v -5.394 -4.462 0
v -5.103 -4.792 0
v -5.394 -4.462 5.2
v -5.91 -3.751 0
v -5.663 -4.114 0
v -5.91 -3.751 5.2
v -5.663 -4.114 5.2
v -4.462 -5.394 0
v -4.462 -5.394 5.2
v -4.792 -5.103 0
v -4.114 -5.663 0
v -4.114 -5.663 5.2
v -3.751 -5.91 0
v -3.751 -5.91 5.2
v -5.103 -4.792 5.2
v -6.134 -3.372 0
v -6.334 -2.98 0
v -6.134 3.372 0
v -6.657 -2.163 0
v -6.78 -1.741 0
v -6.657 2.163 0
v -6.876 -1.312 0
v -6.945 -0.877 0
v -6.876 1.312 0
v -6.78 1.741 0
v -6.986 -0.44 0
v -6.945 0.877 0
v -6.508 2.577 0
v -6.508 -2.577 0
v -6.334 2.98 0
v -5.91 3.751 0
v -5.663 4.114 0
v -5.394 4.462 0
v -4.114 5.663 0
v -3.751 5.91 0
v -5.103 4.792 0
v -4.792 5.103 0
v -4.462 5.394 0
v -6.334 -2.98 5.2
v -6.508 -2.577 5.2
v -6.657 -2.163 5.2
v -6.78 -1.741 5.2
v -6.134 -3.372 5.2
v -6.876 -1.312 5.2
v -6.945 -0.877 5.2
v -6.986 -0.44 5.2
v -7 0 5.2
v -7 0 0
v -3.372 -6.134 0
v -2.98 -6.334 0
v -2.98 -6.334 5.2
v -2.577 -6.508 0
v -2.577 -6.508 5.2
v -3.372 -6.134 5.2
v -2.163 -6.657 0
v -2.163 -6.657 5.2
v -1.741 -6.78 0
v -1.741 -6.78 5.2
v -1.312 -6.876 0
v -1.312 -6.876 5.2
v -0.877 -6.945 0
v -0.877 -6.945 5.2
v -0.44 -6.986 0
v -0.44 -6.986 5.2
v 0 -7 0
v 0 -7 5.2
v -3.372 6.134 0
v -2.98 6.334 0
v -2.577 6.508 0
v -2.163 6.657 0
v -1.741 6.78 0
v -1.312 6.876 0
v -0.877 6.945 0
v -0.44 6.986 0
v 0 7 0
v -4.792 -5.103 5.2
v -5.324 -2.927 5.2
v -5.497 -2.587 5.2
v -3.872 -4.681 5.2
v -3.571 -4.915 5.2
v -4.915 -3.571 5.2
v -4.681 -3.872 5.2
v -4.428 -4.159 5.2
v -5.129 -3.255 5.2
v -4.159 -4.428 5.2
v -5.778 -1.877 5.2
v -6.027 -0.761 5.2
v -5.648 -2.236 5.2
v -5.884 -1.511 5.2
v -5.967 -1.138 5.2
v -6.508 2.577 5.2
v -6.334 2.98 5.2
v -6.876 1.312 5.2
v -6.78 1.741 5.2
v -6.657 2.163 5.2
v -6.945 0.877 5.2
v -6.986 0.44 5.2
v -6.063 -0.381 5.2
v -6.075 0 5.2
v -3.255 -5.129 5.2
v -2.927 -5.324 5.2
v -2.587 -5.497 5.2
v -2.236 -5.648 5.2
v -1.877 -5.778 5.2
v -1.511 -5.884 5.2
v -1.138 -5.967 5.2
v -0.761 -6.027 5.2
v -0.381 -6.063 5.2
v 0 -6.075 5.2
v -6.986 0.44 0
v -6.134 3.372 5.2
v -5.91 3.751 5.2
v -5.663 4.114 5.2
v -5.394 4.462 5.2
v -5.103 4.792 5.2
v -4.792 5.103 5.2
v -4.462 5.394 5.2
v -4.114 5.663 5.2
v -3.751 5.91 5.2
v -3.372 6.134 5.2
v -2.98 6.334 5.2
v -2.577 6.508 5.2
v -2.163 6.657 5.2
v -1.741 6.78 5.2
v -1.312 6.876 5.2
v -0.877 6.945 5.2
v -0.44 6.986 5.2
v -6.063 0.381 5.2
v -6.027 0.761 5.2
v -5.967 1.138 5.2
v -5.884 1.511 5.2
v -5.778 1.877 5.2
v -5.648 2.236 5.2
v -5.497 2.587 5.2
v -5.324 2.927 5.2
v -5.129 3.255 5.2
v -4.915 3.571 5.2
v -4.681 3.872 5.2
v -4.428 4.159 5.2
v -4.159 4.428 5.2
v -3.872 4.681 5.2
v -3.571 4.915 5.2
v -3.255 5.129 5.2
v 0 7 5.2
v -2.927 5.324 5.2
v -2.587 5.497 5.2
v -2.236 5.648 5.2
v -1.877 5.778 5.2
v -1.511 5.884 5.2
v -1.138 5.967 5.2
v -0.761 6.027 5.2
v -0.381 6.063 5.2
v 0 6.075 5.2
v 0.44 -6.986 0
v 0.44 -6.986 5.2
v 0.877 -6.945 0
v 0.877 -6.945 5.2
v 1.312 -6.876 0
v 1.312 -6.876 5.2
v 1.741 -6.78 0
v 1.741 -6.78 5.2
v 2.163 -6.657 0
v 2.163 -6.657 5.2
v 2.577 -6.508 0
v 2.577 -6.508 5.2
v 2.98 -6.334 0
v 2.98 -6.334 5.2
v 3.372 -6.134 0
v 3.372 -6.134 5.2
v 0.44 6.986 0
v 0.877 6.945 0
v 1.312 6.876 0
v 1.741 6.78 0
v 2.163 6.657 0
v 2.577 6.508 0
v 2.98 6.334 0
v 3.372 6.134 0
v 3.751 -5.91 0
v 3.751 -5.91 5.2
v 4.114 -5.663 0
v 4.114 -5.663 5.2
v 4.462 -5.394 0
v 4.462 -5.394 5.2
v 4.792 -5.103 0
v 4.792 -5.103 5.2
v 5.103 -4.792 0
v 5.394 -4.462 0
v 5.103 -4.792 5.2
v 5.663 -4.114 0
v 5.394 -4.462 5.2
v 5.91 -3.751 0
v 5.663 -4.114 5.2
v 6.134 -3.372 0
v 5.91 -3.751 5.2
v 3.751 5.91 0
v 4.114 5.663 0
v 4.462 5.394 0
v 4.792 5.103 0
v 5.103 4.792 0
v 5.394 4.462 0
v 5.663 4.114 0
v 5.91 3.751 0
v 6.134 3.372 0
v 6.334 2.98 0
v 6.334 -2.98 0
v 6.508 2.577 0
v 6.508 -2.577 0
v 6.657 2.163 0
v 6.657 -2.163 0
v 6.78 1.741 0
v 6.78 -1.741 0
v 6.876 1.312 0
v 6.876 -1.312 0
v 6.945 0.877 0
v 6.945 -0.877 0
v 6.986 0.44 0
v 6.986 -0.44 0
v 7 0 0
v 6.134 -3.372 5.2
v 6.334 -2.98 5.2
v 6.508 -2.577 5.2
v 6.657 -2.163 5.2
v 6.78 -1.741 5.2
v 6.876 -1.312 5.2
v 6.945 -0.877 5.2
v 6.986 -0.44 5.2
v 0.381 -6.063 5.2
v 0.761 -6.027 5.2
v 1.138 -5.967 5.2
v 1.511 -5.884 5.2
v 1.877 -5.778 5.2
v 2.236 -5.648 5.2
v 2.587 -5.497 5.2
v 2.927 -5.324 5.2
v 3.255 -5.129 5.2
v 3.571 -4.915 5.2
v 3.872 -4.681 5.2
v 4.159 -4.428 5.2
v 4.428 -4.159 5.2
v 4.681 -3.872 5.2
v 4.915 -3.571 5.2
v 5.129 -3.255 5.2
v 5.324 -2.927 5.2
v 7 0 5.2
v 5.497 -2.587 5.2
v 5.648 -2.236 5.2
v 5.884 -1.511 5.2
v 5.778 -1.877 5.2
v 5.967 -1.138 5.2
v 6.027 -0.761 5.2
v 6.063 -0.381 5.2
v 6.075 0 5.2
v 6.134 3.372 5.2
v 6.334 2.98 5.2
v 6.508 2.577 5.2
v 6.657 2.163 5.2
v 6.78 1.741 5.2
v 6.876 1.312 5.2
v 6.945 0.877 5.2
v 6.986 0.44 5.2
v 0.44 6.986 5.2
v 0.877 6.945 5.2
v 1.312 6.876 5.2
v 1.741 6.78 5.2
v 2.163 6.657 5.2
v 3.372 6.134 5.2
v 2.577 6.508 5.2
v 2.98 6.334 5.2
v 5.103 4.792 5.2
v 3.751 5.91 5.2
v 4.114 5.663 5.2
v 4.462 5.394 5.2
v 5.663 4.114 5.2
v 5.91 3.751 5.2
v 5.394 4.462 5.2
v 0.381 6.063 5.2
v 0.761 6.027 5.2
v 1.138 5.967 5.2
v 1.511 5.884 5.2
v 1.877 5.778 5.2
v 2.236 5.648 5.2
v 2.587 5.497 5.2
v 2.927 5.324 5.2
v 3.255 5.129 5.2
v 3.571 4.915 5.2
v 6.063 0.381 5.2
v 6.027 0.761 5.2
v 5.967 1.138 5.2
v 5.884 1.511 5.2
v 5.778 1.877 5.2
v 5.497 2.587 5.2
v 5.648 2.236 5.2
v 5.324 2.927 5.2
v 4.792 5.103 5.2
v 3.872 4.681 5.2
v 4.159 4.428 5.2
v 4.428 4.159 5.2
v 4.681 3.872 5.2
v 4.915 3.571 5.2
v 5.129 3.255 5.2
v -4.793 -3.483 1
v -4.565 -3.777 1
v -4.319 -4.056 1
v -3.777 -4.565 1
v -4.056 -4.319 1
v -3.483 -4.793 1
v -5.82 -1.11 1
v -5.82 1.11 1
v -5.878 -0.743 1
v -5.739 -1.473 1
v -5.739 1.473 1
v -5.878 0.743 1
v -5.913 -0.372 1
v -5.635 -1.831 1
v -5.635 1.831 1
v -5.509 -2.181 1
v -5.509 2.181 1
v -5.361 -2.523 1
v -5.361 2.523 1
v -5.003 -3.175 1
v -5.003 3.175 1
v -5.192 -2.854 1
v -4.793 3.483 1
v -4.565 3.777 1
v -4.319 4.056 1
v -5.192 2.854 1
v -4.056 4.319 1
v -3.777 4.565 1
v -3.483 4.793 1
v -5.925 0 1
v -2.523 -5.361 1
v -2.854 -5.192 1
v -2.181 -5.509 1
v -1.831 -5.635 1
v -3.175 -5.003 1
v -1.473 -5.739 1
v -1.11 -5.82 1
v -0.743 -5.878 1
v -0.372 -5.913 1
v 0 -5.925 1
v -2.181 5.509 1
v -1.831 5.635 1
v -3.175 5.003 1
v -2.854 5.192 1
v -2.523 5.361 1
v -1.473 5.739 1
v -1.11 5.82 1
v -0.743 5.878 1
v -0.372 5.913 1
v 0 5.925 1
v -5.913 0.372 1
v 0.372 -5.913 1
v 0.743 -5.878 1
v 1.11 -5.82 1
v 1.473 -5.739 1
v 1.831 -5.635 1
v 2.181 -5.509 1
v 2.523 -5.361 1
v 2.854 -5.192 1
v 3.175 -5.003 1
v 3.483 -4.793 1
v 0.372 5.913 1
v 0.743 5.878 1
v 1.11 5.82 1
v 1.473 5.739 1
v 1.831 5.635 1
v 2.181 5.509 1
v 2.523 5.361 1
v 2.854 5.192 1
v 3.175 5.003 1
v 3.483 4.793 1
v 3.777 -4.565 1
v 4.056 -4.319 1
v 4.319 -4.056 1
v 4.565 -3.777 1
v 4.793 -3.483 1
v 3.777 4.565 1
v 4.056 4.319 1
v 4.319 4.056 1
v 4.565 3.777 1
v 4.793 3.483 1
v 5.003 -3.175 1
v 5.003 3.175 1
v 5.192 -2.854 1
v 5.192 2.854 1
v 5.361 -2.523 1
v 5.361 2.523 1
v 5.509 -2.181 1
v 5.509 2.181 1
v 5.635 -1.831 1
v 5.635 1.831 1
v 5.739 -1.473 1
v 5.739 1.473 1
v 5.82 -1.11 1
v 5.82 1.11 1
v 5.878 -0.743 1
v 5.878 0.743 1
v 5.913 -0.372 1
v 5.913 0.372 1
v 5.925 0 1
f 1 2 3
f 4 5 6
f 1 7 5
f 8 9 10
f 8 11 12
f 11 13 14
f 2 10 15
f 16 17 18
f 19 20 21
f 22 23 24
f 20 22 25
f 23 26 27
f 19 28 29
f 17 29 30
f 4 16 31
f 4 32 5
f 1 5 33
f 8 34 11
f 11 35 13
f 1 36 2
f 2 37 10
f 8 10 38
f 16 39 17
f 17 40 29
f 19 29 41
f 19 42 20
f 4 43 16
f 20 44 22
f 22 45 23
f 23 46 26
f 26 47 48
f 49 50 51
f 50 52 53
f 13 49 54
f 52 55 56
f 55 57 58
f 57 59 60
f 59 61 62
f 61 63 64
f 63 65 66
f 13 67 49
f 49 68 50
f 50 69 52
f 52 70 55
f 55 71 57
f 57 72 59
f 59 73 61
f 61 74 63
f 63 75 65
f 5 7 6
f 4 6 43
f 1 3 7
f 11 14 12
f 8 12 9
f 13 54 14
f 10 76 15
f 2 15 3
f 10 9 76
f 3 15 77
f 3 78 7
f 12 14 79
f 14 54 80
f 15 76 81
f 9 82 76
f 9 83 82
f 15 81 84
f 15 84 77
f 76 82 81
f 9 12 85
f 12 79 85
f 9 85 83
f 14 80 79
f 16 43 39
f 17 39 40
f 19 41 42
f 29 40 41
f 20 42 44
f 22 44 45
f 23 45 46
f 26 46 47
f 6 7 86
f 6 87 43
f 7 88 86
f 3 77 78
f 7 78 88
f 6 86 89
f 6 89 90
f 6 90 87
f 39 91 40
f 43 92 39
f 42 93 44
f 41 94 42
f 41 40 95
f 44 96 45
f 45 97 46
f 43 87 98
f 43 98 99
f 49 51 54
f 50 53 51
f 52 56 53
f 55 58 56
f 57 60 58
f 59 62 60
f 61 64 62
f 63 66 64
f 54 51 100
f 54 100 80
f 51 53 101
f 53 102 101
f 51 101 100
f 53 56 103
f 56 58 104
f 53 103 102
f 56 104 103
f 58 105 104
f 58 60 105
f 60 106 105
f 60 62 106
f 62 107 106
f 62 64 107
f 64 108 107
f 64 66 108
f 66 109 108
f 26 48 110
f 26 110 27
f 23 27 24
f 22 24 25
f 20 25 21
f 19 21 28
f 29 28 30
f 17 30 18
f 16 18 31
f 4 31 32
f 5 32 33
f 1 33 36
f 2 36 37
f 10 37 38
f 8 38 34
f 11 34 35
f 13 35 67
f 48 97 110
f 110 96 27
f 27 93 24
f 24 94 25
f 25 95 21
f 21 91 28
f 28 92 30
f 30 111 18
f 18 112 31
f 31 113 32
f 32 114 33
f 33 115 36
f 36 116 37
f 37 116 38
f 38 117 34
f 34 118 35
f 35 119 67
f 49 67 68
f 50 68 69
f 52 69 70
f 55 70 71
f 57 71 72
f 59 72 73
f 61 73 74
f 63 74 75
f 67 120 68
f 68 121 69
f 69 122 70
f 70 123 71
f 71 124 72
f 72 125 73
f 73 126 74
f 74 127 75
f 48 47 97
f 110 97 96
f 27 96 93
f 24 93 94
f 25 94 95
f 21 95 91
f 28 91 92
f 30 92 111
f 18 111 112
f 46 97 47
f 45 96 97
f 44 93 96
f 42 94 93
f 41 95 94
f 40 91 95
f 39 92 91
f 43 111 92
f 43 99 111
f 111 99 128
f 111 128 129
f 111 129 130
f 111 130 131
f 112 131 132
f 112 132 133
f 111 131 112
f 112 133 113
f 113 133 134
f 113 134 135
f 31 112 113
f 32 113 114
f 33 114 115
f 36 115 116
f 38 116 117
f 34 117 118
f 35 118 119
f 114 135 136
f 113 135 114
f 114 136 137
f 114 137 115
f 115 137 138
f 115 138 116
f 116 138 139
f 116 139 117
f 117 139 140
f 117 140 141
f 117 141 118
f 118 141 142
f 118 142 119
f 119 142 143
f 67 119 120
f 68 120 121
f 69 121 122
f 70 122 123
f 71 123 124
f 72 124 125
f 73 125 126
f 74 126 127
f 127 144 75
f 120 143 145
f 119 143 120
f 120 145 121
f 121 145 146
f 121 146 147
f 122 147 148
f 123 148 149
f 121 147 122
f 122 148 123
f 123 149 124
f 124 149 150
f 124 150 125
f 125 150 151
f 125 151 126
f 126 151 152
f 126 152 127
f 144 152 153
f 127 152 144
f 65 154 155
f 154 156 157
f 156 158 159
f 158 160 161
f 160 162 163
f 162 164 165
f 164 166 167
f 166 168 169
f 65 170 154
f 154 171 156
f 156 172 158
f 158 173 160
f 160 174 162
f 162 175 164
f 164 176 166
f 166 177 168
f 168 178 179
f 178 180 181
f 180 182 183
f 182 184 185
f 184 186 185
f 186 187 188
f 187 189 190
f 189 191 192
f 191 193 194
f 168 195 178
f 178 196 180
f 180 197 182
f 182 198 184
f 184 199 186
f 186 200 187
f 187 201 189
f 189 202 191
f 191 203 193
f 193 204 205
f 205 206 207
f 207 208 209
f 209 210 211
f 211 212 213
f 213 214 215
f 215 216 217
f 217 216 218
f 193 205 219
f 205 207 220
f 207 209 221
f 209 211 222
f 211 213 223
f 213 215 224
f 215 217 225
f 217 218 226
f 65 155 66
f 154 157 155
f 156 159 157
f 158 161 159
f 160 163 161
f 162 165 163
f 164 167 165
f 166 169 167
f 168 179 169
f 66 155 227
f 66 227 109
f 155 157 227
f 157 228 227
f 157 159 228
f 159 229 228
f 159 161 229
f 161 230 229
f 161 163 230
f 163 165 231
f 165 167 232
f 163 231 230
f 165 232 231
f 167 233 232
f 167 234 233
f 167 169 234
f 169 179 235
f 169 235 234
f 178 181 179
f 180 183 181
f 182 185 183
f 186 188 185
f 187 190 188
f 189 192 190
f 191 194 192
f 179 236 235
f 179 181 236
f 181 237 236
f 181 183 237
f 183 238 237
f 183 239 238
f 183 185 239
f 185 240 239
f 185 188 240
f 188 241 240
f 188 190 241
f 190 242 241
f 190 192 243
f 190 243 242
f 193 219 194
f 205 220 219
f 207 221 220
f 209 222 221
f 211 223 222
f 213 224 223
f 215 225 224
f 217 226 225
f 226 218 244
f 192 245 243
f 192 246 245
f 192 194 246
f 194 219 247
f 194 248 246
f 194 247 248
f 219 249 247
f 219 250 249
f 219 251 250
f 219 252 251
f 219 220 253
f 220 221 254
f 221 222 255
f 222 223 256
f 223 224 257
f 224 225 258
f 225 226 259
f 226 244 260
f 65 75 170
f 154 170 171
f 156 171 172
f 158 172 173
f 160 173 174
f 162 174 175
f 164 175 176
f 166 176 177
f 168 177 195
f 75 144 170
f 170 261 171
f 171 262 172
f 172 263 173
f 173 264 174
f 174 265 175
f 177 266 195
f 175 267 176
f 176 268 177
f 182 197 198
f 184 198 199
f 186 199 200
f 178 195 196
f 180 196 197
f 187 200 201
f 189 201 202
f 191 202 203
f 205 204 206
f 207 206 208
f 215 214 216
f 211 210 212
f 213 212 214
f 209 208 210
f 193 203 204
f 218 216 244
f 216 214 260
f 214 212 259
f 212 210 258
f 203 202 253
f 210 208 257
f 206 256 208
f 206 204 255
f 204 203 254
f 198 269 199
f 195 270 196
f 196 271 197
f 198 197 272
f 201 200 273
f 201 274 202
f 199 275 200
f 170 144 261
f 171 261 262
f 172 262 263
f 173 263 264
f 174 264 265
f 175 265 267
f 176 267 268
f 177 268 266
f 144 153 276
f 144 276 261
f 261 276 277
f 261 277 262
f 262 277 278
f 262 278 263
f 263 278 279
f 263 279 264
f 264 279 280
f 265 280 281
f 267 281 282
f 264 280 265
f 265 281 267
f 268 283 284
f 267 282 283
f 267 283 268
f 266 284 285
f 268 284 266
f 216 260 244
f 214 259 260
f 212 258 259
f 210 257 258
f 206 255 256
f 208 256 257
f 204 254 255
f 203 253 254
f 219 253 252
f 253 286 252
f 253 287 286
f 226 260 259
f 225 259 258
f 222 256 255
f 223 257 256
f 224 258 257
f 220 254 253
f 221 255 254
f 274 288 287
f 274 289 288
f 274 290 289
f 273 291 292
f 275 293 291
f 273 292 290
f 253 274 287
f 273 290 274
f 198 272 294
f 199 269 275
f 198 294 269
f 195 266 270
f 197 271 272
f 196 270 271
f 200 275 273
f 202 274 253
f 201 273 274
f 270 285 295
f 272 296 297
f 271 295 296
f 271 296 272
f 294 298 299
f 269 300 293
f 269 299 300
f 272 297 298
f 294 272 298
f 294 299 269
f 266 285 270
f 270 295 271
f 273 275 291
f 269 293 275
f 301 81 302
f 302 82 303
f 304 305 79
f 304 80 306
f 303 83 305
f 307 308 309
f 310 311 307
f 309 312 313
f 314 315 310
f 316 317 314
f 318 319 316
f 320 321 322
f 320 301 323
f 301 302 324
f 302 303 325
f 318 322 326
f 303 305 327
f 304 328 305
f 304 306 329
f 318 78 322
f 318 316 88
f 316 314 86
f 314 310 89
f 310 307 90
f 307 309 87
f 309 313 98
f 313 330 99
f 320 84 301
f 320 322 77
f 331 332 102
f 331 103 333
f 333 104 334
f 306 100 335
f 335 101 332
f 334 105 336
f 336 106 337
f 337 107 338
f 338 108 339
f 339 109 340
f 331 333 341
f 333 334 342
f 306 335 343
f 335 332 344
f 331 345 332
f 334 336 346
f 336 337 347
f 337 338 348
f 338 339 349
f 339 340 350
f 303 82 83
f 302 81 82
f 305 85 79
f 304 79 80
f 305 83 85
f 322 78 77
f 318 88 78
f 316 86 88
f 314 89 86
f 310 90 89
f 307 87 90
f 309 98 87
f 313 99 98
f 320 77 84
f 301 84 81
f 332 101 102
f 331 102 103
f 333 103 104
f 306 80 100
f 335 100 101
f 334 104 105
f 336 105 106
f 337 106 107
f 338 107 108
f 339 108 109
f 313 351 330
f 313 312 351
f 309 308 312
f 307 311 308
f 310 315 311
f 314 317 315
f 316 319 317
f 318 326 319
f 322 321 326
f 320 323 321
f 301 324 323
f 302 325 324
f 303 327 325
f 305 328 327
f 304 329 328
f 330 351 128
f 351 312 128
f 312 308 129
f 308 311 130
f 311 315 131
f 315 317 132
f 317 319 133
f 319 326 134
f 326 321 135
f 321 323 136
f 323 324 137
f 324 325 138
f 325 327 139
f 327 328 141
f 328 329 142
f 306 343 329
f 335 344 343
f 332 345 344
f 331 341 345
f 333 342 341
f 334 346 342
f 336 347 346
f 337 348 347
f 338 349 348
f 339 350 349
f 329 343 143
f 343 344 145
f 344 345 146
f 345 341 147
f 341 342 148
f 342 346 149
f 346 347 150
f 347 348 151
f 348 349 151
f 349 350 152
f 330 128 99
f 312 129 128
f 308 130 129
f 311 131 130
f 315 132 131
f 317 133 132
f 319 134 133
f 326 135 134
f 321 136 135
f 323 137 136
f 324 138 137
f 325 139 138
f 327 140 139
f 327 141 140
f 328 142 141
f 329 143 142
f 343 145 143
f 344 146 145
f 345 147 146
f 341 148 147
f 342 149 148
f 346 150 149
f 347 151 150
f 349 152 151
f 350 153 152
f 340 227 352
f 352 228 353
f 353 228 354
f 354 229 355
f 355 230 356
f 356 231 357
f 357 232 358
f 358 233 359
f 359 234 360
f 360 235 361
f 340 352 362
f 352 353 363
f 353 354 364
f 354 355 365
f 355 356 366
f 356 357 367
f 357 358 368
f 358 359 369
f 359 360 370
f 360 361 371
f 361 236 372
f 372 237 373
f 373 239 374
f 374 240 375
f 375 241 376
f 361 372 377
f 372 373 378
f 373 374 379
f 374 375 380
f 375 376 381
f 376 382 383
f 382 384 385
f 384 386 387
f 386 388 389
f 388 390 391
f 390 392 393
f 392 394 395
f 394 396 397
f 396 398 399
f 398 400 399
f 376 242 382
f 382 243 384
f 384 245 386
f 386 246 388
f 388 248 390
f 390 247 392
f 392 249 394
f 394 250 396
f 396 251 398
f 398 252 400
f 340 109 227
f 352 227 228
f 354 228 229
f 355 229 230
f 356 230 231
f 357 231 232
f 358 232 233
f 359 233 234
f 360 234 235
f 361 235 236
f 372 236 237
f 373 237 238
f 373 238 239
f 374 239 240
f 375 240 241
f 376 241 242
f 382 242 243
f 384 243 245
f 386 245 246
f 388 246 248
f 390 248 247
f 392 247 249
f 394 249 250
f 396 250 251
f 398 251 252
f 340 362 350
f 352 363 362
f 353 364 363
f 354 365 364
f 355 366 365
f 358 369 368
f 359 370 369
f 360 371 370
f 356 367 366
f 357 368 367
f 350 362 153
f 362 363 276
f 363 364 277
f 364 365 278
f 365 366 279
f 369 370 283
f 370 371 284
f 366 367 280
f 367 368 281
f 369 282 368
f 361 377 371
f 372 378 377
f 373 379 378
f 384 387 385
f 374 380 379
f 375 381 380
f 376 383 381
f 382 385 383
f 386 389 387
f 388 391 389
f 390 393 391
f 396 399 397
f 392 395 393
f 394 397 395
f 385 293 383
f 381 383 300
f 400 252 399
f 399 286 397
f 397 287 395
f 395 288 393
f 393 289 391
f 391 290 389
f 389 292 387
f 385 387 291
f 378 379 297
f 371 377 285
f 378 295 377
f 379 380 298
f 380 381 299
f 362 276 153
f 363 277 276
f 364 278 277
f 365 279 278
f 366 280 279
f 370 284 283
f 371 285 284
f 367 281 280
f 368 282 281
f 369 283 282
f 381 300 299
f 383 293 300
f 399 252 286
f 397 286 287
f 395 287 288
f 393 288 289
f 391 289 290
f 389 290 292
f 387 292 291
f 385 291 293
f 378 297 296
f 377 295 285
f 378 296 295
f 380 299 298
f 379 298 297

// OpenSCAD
$fn = 100;

difference() {
    cylinder(h=5.2, d=14);
    translate([0, 0, 1])
        cylinder(h=4.2, r1=5.925, r2=6.075);
}
